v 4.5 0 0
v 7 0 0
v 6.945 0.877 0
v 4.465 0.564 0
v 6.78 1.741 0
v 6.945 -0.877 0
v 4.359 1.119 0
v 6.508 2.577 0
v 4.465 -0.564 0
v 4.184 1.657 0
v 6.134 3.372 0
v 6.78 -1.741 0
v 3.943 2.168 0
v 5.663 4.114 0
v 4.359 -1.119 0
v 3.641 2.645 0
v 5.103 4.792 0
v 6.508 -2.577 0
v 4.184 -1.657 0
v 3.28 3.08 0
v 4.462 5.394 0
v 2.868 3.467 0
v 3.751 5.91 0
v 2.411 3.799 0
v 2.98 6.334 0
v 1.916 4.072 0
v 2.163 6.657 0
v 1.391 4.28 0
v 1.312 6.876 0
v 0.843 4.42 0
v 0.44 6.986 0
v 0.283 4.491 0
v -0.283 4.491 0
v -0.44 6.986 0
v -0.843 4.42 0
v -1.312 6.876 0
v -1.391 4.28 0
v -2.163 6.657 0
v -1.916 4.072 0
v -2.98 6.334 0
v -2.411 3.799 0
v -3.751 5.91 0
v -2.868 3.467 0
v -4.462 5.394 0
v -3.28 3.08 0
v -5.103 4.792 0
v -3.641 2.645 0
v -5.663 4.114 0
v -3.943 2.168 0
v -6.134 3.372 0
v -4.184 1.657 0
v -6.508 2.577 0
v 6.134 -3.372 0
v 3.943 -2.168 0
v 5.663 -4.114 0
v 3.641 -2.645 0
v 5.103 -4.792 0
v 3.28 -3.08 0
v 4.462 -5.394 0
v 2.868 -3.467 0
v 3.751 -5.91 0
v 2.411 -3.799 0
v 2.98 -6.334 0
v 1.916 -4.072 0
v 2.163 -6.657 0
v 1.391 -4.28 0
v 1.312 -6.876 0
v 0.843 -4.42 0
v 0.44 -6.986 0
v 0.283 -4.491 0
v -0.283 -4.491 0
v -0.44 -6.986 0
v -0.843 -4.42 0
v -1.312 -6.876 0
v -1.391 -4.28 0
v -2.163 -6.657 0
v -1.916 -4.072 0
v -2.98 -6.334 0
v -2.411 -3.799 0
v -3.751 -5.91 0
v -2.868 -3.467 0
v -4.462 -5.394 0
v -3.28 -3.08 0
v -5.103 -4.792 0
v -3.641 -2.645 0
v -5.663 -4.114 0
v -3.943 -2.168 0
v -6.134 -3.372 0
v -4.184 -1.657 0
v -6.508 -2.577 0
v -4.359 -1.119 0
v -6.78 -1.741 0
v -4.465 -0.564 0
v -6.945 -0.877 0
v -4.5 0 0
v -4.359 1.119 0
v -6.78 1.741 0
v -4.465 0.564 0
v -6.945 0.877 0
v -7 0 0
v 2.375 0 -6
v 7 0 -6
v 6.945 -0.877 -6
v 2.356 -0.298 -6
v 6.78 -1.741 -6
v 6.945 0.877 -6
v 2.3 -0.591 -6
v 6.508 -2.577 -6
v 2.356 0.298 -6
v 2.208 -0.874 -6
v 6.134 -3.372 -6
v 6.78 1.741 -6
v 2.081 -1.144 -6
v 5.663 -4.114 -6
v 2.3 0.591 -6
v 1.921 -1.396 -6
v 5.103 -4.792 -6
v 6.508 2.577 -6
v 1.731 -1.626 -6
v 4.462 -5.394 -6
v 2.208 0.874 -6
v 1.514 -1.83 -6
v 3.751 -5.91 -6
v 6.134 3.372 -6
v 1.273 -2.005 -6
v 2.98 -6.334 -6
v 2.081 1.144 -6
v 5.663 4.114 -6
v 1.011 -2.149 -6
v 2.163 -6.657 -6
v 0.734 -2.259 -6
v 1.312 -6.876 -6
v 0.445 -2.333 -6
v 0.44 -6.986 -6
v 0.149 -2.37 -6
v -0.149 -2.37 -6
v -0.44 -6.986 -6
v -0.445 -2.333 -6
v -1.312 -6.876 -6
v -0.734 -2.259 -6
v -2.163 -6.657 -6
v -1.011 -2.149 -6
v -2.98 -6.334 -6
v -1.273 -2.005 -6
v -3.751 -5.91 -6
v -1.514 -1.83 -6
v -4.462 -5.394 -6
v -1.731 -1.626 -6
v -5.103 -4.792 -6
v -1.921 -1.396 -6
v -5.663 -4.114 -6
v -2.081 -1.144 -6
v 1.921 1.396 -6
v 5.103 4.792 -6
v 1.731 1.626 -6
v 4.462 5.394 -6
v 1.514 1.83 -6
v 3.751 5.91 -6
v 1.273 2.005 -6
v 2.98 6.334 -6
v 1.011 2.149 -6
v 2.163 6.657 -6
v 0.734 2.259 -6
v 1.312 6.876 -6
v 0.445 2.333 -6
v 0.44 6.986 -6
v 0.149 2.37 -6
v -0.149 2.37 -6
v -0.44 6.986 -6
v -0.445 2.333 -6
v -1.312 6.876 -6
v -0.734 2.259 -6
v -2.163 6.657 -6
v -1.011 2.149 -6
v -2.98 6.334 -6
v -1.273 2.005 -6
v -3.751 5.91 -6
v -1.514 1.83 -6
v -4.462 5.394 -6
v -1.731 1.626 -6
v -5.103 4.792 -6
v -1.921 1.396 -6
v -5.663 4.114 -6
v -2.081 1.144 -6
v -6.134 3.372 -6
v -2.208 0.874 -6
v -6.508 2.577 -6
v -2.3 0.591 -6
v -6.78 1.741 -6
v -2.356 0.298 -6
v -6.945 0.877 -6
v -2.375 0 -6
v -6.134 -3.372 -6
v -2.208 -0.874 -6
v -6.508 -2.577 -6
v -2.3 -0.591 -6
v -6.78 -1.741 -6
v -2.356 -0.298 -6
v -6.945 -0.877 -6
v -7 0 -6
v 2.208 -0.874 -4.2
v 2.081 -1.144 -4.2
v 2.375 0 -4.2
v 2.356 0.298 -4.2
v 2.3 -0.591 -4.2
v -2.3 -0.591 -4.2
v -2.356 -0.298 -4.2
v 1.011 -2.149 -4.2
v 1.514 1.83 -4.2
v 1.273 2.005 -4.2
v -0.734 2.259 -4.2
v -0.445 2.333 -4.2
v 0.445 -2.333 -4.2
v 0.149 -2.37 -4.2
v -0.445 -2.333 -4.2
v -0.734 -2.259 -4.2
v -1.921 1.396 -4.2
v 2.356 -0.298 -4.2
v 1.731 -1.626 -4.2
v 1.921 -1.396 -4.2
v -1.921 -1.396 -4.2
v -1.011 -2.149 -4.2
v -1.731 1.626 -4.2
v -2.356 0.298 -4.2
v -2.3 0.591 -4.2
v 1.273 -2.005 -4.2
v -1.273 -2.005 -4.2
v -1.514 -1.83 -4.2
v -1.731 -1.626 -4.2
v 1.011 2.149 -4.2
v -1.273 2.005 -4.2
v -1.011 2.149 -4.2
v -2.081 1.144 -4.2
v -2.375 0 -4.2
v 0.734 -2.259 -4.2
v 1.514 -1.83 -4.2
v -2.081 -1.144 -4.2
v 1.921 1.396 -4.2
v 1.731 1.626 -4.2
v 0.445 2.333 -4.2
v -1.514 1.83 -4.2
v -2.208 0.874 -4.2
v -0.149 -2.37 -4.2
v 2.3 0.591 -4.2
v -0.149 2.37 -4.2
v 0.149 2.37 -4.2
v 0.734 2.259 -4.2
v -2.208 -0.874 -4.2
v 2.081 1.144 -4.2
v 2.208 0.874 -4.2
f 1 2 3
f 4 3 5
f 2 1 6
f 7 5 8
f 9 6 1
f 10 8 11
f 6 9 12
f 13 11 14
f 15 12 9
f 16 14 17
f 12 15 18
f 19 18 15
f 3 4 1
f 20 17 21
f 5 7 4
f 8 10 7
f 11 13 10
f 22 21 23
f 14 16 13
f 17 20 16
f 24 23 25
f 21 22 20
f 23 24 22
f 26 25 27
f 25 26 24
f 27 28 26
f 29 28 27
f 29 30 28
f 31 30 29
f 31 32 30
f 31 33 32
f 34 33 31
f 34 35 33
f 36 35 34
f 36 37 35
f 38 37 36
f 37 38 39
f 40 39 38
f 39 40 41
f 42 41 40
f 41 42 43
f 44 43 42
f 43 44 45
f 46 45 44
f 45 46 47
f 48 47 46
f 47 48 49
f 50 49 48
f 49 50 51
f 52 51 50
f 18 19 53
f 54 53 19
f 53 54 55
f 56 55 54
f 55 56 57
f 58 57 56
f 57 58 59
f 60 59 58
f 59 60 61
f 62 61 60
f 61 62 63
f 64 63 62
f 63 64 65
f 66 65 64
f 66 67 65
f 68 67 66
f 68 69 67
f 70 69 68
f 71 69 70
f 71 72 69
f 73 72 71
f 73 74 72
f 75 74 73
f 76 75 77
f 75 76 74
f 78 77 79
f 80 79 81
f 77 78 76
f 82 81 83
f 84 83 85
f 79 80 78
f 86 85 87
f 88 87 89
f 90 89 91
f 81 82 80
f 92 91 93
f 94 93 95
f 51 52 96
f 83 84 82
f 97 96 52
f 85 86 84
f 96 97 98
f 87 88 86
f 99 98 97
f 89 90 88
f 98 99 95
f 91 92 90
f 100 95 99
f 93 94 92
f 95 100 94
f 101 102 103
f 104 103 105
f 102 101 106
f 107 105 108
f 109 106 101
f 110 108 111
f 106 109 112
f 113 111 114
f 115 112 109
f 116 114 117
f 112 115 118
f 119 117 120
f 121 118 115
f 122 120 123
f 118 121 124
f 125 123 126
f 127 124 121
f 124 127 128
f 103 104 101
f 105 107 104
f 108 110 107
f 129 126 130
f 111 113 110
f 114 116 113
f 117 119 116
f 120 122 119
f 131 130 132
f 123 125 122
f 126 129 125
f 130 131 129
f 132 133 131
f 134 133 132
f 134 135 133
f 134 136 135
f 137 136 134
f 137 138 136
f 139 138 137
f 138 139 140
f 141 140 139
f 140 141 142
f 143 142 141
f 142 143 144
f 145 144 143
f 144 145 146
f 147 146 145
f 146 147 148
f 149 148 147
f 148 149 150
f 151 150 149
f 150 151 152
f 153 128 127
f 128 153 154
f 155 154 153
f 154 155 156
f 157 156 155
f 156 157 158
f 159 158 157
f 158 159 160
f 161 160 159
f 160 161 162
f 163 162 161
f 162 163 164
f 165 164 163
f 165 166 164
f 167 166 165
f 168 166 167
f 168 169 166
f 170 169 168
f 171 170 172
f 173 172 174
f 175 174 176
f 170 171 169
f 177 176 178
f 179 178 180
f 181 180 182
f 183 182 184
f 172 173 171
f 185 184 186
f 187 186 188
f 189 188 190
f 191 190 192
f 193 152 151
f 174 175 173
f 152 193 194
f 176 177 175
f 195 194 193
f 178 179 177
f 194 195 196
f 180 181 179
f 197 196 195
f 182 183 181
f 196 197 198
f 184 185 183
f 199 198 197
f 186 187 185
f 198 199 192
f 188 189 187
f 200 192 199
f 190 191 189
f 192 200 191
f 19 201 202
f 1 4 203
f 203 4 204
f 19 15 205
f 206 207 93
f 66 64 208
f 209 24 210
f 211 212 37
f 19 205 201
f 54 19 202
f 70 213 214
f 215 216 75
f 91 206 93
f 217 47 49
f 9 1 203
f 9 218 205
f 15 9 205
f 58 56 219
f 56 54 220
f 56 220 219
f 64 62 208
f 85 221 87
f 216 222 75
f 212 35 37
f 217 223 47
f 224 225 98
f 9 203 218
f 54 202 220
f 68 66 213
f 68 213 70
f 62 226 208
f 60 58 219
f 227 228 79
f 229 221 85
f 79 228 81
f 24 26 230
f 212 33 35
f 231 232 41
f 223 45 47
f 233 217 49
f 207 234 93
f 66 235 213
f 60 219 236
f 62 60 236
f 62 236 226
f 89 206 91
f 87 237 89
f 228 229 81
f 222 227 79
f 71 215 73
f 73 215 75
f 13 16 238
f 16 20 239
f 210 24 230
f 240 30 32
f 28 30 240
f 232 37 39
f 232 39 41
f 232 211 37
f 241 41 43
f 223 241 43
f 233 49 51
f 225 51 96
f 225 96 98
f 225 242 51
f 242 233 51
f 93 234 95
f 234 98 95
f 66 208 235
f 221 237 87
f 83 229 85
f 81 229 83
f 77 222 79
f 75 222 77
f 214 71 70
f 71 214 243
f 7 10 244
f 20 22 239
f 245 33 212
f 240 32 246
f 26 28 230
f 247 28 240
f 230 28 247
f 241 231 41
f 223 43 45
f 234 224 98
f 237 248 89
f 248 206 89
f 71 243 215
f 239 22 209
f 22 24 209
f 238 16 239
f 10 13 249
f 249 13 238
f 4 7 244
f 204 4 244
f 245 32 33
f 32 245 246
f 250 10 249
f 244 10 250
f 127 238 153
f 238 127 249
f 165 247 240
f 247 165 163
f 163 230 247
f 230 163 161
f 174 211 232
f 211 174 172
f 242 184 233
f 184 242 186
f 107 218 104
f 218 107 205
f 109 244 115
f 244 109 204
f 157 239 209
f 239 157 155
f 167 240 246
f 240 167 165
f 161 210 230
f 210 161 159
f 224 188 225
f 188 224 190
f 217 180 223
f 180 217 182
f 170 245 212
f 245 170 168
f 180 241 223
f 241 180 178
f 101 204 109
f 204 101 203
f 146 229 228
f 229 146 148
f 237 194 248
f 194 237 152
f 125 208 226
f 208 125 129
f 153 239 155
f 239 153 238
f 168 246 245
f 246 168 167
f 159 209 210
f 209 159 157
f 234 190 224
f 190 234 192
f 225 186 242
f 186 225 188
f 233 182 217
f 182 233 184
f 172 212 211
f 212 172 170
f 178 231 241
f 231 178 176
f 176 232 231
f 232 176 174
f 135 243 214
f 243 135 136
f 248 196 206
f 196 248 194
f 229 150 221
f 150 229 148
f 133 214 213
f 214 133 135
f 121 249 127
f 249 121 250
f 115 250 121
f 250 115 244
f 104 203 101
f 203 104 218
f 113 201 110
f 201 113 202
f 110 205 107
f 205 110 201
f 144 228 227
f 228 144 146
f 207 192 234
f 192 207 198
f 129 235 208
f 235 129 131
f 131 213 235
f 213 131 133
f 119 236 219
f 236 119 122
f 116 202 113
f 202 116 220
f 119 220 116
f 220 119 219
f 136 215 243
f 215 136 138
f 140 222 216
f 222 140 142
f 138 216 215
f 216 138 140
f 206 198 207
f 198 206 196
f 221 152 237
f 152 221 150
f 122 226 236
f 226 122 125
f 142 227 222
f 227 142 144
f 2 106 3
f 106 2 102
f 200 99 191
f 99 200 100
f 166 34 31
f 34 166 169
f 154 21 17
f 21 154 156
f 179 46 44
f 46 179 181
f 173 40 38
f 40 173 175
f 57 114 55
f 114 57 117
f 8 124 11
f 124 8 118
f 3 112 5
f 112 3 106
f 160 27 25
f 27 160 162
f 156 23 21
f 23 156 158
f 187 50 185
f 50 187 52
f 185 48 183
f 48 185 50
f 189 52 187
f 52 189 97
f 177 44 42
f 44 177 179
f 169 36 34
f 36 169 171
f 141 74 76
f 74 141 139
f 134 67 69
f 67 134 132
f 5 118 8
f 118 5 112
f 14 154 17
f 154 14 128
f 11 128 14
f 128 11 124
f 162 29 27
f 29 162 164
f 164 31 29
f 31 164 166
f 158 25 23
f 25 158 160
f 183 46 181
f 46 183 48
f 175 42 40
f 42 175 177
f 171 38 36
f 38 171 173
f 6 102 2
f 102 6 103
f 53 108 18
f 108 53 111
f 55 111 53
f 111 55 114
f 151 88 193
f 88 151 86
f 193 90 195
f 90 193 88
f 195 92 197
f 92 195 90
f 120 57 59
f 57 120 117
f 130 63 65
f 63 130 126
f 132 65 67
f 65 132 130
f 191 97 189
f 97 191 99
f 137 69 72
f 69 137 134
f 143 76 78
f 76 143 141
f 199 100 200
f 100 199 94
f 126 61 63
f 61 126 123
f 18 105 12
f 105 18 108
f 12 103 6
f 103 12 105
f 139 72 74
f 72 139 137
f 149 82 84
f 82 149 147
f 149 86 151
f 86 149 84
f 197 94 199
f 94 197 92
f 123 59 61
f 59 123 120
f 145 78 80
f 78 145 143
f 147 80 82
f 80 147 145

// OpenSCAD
$fn = 50;


difference() {
	union() {
		translate(v = [0, 0, -6.0000000000]) {
			cylinder(h = 6, r = 7.0000000000);
		}
		cylinder(h = 0, r = 13.0000000000);
	}
	union() {
		translate(v = [0, 0, 0]) {
			rotate(a = [0, 0, 0]) {
				difference() {
					union() {
						#translate(v = [0, 0, -6.0000000000]) {
							cylinder(h = 6, r = 2.2500000000);
						}
						#translate(v = [0, 0, -4.2000000000]) {
							cylinder(h = 4.2000000000, r1 = 2.3750000000, r2 = 4.5000000000);
						}
						#translate(v = [0, 0, -6.0000000000]) {
							cylinder(h = 6, r = 2.3750000000);
						}
						#translate(v = [0, 0, -6.0000000000]) {
							cylinder(h = 6, r = 2.2500000000);
						}
					}
					union();
				}
			}
		}
	}
}
